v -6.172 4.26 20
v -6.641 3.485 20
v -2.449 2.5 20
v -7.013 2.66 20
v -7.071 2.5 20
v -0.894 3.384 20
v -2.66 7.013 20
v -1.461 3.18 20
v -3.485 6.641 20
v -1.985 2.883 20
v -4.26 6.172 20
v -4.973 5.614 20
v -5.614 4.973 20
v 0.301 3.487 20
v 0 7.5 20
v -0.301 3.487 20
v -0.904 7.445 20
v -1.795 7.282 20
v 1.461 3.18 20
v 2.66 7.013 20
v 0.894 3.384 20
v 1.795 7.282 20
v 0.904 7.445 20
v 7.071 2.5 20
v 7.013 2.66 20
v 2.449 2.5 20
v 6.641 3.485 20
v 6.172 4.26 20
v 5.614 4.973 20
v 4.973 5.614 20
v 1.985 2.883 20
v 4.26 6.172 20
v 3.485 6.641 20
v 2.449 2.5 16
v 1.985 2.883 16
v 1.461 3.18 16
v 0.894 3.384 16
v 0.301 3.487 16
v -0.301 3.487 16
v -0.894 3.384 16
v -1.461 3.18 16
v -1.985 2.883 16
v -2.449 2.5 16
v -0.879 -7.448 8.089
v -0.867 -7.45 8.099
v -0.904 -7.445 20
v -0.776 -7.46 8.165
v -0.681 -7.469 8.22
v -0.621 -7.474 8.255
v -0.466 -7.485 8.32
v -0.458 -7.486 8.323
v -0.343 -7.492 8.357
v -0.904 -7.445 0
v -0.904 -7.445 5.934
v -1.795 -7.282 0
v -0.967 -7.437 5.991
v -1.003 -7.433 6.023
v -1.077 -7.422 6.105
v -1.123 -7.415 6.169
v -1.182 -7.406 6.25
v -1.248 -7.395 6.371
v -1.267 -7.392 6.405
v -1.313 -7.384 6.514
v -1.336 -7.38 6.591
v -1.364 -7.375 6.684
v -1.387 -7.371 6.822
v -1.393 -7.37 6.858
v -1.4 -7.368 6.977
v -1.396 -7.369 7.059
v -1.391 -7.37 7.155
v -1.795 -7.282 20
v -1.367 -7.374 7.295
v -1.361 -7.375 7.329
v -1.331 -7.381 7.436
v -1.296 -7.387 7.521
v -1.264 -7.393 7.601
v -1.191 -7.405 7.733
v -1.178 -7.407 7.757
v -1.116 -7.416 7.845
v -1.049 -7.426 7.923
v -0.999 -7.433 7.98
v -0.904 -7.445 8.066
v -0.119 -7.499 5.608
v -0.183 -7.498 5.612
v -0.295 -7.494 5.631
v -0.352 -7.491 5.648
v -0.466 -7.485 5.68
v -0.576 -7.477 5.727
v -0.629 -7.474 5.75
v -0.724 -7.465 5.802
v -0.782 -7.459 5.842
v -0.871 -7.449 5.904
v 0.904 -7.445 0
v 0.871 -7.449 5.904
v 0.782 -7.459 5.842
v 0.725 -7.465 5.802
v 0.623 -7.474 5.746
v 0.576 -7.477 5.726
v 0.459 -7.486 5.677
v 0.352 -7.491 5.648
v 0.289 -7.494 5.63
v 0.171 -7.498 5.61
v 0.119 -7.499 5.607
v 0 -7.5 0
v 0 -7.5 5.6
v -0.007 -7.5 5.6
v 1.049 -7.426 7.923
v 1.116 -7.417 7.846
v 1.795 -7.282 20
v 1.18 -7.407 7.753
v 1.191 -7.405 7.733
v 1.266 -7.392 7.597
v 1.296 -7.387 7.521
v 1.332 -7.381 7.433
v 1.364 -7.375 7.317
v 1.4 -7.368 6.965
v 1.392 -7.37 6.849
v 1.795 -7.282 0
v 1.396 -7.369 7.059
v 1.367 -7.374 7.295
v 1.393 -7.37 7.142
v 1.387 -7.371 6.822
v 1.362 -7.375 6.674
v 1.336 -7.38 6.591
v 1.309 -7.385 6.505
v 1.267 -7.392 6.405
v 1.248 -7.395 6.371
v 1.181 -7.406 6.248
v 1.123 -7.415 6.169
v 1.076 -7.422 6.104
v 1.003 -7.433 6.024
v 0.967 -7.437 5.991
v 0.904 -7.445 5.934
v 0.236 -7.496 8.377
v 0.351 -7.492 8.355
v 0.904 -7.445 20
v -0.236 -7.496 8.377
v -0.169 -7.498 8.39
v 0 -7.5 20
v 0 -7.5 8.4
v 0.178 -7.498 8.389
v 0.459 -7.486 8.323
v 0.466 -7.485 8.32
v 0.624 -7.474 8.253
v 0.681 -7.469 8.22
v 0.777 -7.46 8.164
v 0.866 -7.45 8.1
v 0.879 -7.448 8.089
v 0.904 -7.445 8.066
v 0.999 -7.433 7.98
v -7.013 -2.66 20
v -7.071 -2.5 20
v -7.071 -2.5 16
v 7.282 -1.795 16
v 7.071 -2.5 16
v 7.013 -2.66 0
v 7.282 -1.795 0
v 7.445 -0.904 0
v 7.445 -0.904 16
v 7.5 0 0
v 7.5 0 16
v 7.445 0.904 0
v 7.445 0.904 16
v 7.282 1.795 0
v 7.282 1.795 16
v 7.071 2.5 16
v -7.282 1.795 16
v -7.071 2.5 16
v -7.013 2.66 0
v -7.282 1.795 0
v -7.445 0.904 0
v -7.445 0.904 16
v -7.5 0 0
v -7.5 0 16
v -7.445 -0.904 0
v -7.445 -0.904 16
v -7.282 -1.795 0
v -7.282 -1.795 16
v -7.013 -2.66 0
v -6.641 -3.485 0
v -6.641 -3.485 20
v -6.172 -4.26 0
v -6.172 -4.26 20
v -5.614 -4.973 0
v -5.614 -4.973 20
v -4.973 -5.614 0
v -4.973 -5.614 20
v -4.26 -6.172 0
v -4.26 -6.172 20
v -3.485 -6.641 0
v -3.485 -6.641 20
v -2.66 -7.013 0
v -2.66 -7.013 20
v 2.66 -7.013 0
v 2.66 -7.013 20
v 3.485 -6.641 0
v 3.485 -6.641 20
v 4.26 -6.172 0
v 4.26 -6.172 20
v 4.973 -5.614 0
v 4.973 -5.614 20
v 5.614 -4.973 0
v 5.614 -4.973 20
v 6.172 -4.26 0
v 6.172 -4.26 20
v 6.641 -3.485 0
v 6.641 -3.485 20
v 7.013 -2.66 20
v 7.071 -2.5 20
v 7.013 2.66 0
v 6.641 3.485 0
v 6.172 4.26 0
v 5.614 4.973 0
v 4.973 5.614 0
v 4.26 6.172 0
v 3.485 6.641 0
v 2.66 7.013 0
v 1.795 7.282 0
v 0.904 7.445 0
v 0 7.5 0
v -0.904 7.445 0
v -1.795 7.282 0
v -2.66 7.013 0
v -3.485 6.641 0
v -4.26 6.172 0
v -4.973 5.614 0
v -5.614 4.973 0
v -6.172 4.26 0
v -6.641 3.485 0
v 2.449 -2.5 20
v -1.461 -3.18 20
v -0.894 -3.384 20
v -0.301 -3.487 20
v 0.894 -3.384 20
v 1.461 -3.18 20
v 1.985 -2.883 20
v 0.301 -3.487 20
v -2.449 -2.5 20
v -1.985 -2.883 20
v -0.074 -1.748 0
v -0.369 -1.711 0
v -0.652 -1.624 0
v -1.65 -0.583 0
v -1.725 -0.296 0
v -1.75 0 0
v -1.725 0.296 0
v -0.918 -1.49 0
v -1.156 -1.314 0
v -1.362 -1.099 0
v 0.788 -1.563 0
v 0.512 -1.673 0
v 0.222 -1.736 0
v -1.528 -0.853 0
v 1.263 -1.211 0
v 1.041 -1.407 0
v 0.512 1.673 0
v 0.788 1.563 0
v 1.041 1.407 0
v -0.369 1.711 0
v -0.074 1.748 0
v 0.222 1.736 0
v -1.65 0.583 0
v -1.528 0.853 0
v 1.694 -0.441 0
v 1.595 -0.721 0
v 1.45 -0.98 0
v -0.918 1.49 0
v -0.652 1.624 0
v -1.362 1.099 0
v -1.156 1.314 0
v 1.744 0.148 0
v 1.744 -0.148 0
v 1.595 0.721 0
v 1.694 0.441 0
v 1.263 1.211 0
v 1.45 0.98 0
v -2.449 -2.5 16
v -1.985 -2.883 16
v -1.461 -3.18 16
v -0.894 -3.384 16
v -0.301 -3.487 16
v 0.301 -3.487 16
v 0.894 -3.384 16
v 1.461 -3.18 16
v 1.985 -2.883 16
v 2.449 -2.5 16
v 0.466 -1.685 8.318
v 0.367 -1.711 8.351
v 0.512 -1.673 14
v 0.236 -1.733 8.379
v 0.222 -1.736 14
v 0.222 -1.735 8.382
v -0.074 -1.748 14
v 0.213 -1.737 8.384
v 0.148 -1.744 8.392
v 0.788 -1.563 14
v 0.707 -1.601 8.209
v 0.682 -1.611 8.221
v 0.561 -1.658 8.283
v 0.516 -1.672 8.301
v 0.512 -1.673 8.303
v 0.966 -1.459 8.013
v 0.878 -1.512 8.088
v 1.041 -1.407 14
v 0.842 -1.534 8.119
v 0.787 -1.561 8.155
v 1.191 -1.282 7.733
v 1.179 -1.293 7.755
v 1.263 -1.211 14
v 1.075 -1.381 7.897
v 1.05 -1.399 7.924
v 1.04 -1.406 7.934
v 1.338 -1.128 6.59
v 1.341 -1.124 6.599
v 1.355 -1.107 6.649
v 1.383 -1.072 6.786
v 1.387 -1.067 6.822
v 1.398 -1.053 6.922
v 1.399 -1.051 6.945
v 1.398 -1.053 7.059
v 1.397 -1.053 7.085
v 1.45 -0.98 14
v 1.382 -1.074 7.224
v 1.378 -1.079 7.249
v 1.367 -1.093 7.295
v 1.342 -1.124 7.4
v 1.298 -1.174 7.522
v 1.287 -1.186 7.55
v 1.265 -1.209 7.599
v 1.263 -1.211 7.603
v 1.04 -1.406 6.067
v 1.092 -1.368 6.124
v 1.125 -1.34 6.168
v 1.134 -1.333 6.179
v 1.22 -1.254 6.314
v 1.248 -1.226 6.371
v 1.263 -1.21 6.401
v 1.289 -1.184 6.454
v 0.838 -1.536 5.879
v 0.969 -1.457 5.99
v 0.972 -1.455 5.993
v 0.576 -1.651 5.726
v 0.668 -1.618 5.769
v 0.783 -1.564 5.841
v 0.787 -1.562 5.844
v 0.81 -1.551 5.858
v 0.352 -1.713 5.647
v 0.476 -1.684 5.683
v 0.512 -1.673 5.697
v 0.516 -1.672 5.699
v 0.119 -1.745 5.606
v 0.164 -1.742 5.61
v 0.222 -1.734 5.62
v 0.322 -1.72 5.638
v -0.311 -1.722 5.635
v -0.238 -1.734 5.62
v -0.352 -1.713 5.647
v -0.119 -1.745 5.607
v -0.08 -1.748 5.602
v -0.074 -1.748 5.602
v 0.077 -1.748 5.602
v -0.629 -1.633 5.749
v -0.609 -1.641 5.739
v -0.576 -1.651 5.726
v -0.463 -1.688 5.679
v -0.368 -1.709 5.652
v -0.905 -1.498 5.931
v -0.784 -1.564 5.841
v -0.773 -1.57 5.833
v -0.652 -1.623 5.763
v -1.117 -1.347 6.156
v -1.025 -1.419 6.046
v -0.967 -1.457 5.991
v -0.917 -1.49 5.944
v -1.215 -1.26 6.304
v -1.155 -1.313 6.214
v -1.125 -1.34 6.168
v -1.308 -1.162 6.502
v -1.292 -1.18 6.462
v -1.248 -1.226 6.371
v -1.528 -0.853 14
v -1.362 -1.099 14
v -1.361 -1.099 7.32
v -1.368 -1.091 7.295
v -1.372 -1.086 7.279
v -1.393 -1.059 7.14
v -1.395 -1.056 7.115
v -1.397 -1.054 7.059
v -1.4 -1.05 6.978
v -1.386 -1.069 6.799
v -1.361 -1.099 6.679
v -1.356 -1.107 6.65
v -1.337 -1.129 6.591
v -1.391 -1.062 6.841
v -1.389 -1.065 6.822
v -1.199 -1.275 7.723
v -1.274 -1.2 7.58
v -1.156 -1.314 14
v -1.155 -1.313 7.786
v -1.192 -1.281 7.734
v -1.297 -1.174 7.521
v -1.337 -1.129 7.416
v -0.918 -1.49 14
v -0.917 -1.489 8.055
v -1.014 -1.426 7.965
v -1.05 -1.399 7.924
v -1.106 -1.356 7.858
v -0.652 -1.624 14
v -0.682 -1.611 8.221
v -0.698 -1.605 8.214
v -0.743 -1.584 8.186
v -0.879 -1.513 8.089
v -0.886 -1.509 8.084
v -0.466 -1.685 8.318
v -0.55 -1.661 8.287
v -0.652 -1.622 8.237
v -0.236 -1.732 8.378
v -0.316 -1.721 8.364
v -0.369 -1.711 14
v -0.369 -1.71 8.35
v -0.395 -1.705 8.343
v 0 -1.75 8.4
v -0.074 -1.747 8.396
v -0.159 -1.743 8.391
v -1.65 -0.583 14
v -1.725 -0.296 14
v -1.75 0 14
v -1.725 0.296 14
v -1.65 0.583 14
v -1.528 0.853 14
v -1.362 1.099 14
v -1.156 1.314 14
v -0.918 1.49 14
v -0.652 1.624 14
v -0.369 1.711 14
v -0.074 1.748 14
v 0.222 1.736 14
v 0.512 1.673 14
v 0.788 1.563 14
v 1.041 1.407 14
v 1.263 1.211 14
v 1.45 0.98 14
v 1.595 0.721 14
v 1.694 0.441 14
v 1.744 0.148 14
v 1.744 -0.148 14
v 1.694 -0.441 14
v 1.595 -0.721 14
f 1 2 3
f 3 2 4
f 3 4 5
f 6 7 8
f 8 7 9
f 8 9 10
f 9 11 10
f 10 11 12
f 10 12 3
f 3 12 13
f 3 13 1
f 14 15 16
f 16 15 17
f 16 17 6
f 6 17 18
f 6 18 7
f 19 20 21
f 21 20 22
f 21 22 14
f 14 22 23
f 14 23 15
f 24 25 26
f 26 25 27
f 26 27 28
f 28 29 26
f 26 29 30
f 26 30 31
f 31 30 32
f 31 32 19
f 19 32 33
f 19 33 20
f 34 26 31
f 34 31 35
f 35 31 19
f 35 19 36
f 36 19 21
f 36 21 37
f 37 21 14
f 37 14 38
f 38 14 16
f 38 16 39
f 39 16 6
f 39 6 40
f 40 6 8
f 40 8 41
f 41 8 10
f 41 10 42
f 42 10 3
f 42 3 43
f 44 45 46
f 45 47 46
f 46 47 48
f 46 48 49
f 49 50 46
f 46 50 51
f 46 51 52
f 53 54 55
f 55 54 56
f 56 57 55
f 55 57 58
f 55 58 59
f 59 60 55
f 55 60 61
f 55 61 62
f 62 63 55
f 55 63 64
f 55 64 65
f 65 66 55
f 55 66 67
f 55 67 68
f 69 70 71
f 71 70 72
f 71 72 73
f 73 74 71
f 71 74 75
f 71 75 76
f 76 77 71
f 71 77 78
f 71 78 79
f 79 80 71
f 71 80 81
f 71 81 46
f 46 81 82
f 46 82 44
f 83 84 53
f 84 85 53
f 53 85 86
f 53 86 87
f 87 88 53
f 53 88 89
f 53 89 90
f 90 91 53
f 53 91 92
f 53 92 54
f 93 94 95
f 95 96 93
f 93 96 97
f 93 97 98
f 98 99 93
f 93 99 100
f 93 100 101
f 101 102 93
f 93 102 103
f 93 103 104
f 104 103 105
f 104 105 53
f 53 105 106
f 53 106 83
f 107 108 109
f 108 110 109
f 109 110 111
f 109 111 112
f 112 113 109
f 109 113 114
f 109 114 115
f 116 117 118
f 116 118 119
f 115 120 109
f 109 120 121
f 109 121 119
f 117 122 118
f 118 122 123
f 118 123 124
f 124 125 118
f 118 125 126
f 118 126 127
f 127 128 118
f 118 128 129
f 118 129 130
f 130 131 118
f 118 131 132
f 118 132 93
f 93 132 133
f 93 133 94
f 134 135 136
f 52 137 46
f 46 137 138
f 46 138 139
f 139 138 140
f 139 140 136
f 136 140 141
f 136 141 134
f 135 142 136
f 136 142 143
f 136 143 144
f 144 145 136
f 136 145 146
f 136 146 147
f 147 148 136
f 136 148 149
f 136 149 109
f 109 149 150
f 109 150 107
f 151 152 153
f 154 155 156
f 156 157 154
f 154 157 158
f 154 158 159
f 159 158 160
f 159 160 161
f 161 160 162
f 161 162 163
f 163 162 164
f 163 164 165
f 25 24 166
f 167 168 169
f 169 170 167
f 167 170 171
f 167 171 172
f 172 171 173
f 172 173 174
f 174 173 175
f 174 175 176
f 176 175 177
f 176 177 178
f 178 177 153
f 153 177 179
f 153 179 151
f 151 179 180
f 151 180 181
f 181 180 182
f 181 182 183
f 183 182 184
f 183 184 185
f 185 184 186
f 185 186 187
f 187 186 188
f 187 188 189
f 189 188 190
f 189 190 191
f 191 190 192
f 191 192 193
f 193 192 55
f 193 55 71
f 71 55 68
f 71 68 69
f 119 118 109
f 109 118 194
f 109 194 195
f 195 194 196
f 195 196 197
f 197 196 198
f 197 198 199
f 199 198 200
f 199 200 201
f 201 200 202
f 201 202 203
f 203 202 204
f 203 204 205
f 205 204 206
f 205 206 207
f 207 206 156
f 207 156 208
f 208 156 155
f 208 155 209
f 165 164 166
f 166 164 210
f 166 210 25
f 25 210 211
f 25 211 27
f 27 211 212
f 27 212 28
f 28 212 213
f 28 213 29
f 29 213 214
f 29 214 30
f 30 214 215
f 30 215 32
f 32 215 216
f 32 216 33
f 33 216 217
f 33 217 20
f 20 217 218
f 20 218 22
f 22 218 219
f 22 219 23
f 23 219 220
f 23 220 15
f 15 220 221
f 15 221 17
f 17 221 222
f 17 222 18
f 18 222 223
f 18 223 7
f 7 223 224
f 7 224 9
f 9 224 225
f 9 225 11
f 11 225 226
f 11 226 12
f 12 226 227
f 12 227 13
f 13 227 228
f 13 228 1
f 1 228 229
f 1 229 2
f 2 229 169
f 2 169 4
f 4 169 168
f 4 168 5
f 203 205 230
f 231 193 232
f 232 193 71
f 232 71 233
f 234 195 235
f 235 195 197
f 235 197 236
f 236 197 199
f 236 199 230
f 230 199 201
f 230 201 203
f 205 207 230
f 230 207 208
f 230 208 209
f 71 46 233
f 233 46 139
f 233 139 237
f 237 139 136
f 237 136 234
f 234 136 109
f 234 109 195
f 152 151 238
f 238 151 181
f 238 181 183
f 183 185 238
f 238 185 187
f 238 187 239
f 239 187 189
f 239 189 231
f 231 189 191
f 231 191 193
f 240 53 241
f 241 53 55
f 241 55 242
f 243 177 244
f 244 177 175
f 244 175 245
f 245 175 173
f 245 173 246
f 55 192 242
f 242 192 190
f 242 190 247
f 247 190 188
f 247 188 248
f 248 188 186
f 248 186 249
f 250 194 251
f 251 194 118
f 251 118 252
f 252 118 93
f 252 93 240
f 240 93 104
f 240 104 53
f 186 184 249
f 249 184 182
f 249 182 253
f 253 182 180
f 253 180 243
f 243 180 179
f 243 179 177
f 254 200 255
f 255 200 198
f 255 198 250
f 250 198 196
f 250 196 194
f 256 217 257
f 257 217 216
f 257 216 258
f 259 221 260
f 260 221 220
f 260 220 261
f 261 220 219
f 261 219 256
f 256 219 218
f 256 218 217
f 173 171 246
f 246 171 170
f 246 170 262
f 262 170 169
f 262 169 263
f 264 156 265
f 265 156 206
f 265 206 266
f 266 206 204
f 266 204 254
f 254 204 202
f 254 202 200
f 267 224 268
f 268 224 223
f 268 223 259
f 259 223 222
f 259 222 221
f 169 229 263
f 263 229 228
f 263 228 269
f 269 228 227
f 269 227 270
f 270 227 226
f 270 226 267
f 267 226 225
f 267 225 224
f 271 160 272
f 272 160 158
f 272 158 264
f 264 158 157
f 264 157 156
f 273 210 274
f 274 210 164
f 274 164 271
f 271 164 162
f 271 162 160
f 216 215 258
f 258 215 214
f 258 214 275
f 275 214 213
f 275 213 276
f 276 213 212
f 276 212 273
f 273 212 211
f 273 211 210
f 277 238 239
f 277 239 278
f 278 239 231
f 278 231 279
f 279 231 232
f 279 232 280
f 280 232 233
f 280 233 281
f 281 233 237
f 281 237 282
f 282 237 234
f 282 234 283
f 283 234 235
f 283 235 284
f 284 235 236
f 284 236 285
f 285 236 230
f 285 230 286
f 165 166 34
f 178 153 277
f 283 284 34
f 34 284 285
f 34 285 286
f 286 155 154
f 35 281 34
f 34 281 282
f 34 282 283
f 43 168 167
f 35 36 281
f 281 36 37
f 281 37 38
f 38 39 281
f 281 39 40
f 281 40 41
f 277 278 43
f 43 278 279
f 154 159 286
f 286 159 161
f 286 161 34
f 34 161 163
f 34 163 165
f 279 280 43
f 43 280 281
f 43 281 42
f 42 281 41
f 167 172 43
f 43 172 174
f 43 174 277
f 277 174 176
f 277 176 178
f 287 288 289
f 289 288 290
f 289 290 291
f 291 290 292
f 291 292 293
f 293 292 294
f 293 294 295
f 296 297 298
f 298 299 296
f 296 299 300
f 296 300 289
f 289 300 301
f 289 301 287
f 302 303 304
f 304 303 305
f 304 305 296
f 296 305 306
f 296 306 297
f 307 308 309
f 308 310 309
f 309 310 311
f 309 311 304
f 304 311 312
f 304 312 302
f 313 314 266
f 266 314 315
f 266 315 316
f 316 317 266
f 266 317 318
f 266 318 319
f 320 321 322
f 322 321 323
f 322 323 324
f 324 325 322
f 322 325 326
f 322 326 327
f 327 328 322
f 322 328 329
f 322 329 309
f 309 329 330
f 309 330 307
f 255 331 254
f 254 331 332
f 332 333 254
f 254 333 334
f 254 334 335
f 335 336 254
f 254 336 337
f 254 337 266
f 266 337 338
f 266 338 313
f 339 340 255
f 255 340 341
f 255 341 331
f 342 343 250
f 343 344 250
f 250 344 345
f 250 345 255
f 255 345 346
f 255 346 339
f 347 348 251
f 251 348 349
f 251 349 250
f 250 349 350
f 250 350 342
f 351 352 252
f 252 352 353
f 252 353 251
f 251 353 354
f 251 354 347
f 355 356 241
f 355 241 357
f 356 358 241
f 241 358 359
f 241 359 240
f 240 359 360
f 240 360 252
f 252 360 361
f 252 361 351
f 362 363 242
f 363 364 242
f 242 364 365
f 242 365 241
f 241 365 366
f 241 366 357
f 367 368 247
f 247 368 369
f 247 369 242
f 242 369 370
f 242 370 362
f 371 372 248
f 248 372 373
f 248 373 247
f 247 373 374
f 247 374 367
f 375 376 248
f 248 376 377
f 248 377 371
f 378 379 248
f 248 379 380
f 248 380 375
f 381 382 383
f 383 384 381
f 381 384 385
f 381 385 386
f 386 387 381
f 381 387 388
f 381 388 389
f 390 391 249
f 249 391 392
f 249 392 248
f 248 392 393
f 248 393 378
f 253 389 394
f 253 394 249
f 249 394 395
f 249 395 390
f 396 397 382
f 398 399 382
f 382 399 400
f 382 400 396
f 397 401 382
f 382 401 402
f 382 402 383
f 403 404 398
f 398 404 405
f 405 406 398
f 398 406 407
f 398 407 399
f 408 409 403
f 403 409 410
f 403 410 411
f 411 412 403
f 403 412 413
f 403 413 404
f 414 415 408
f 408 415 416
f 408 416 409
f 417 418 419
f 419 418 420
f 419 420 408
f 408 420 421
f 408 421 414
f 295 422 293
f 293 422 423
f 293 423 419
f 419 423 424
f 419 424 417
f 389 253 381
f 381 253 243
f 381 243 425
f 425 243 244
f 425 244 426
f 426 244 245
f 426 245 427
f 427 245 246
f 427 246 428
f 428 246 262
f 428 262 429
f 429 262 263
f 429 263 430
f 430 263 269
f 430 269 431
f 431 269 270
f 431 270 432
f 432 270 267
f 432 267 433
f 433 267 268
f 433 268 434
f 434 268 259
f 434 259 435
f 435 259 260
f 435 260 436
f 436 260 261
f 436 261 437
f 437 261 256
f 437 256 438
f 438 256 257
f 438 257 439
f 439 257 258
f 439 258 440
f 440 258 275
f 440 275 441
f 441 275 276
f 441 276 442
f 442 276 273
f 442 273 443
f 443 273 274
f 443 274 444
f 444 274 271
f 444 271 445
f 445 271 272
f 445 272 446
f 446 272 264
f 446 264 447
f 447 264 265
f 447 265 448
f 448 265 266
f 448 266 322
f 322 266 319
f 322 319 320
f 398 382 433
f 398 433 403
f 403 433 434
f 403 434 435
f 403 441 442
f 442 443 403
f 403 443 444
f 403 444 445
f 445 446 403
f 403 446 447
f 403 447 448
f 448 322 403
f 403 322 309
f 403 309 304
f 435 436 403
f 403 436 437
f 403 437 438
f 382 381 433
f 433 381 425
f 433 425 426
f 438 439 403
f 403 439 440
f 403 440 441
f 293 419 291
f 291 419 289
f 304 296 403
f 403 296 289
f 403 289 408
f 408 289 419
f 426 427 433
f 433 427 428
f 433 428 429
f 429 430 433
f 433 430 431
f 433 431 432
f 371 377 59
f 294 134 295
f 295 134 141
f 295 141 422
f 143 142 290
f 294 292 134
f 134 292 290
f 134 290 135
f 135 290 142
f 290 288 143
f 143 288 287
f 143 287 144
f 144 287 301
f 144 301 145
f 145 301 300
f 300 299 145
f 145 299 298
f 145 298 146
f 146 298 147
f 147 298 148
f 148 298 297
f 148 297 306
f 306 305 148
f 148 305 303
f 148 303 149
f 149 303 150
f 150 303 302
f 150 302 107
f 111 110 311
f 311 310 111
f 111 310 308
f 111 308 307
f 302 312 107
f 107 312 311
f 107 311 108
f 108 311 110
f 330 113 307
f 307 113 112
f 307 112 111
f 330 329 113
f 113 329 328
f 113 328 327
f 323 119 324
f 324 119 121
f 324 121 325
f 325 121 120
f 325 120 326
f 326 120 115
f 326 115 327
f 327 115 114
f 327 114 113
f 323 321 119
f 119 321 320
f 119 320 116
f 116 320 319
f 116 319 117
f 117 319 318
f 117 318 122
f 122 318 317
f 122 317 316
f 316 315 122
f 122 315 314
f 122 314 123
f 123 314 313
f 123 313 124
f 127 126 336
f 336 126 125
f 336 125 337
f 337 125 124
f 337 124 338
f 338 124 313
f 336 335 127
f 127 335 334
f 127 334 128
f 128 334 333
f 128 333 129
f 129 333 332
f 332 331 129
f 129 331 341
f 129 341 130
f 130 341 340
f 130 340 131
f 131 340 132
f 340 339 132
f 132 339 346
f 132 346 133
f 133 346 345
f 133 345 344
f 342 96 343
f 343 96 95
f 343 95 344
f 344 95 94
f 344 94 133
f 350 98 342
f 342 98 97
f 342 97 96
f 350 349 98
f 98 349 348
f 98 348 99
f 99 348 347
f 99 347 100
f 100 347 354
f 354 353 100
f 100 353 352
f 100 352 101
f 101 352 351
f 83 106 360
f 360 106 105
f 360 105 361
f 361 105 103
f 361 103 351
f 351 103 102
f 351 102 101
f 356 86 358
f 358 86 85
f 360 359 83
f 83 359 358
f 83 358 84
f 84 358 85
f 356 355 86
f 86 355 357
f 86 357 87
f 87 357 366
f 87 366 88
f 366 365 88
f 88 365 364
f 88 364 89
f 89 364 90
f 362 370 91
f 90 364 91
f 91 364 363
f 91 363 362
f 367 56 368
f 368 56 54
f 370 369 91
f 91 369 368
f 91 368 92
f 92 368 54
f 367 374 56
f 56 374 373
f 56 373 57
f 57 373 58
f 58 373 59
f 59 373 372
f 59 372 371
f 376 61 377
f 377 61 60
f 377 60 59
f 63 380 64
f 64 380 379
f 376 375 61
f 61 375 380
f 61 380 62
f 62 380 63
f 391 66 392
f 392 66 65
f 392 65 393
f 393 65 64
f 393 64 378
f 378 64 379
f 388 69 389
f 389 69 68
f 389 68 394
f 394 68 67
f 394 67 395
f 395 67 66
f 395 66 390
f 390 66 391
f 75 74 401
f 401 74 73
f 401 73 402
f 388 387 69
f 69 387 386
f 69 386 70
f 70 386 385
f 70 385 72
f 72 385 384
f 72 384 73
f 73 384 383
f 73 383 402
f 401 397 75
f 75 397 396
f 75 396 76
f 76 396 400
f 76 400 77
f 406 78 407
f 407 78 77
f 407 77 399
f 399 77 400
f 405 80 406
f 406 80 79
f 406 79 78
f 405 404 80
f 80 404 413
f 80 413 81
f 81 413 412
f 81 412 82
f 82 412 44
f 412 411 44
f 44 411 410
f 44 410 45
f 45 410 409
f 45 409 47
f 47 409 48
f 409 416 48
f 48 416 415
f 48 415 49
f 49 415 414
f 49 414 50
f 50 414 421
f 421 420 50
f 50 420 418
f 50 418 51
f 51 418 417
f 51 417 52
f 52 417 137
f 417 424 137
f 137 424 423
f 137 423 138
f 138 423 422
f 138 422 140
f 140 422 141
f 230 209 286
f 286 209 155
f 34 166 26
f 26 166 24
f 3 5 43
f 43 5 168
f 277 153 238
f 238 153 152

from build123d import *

# Parameters (mm, degrees)
SKETCH_1_R          = 7.5
EXTRUDE_1_DEPTH     = 20
SKETCH_2_R          = 3.5
CUT_EXTRUDE_1_DEPTH = 4
SKETCH_3_R          = 1.75
CUT_EXTRUDE_2_DEPTH = 14
SKETCH_4_R          = 1.4
CUT_EXTRUDE_3_DEPTH = 14
SKETCH_5_W          = 18
SKETCH_5_H          = 5
CUT_EXTRUDE_4_DEPTH = 4


with BuildPart() as part:
    # Эскиз1 → Бобышка-Вытянуть1 (new body)
    with BuildSketch(Plane.XY):
        Circle(SKETCH_1_R)
    extrude(amount=EXTRUDE_1_DEPTH)

    # Эскиз2 → Вырез-Вытянуть1 (cut)
    with BuildSketch(Plane.XY.offset(20)):
        Circle(SKETCH_2_R)
    extrude(amount=-CUT_EXTRUDE_1_DEPTH, mode=Mode.SUBTRACT)

    # Эскиз3 → Вырез-Вытянуть2 (cut)
    with BuildSketch(Plane(origin=(0, 0, 0), x_dir=(-1, 0, 0), z_dir=(0, 0, -1))):
        Circle(SKETCH_3_R)
    extrude(amount=-CUT_EXTRUDE_2_DEPTH, mode=Mode.SUBTRACT)

    # Эскиз4 → Вырез-Вытянуть3 (cut)
    with BuildSketch(Plane(origin=(0, 0, 0), x_dir=(1, 0, 0), z_dir=(0, 1, 0))):
        with Locations(Location((0, -7, 0), (0, 0, 270))):
            Circle(SKETCH_4_R)
    extrude(amount=-CUT_EXTRUDE_3_DEPTH, mode=Mode.SUBTRACT)

    # Эскиз5 → Вырез-Вытянуть4 (cut)
    with BuildSketch(Plane.XY.offset(20)):
        Rectangle(SKETCH_5_W, SKETCH_5_H)
    extrude(amount=-CUT_EXTRUDE_4_DEPTH, mode=Mode.SUBTRACT)


solid = part.part
